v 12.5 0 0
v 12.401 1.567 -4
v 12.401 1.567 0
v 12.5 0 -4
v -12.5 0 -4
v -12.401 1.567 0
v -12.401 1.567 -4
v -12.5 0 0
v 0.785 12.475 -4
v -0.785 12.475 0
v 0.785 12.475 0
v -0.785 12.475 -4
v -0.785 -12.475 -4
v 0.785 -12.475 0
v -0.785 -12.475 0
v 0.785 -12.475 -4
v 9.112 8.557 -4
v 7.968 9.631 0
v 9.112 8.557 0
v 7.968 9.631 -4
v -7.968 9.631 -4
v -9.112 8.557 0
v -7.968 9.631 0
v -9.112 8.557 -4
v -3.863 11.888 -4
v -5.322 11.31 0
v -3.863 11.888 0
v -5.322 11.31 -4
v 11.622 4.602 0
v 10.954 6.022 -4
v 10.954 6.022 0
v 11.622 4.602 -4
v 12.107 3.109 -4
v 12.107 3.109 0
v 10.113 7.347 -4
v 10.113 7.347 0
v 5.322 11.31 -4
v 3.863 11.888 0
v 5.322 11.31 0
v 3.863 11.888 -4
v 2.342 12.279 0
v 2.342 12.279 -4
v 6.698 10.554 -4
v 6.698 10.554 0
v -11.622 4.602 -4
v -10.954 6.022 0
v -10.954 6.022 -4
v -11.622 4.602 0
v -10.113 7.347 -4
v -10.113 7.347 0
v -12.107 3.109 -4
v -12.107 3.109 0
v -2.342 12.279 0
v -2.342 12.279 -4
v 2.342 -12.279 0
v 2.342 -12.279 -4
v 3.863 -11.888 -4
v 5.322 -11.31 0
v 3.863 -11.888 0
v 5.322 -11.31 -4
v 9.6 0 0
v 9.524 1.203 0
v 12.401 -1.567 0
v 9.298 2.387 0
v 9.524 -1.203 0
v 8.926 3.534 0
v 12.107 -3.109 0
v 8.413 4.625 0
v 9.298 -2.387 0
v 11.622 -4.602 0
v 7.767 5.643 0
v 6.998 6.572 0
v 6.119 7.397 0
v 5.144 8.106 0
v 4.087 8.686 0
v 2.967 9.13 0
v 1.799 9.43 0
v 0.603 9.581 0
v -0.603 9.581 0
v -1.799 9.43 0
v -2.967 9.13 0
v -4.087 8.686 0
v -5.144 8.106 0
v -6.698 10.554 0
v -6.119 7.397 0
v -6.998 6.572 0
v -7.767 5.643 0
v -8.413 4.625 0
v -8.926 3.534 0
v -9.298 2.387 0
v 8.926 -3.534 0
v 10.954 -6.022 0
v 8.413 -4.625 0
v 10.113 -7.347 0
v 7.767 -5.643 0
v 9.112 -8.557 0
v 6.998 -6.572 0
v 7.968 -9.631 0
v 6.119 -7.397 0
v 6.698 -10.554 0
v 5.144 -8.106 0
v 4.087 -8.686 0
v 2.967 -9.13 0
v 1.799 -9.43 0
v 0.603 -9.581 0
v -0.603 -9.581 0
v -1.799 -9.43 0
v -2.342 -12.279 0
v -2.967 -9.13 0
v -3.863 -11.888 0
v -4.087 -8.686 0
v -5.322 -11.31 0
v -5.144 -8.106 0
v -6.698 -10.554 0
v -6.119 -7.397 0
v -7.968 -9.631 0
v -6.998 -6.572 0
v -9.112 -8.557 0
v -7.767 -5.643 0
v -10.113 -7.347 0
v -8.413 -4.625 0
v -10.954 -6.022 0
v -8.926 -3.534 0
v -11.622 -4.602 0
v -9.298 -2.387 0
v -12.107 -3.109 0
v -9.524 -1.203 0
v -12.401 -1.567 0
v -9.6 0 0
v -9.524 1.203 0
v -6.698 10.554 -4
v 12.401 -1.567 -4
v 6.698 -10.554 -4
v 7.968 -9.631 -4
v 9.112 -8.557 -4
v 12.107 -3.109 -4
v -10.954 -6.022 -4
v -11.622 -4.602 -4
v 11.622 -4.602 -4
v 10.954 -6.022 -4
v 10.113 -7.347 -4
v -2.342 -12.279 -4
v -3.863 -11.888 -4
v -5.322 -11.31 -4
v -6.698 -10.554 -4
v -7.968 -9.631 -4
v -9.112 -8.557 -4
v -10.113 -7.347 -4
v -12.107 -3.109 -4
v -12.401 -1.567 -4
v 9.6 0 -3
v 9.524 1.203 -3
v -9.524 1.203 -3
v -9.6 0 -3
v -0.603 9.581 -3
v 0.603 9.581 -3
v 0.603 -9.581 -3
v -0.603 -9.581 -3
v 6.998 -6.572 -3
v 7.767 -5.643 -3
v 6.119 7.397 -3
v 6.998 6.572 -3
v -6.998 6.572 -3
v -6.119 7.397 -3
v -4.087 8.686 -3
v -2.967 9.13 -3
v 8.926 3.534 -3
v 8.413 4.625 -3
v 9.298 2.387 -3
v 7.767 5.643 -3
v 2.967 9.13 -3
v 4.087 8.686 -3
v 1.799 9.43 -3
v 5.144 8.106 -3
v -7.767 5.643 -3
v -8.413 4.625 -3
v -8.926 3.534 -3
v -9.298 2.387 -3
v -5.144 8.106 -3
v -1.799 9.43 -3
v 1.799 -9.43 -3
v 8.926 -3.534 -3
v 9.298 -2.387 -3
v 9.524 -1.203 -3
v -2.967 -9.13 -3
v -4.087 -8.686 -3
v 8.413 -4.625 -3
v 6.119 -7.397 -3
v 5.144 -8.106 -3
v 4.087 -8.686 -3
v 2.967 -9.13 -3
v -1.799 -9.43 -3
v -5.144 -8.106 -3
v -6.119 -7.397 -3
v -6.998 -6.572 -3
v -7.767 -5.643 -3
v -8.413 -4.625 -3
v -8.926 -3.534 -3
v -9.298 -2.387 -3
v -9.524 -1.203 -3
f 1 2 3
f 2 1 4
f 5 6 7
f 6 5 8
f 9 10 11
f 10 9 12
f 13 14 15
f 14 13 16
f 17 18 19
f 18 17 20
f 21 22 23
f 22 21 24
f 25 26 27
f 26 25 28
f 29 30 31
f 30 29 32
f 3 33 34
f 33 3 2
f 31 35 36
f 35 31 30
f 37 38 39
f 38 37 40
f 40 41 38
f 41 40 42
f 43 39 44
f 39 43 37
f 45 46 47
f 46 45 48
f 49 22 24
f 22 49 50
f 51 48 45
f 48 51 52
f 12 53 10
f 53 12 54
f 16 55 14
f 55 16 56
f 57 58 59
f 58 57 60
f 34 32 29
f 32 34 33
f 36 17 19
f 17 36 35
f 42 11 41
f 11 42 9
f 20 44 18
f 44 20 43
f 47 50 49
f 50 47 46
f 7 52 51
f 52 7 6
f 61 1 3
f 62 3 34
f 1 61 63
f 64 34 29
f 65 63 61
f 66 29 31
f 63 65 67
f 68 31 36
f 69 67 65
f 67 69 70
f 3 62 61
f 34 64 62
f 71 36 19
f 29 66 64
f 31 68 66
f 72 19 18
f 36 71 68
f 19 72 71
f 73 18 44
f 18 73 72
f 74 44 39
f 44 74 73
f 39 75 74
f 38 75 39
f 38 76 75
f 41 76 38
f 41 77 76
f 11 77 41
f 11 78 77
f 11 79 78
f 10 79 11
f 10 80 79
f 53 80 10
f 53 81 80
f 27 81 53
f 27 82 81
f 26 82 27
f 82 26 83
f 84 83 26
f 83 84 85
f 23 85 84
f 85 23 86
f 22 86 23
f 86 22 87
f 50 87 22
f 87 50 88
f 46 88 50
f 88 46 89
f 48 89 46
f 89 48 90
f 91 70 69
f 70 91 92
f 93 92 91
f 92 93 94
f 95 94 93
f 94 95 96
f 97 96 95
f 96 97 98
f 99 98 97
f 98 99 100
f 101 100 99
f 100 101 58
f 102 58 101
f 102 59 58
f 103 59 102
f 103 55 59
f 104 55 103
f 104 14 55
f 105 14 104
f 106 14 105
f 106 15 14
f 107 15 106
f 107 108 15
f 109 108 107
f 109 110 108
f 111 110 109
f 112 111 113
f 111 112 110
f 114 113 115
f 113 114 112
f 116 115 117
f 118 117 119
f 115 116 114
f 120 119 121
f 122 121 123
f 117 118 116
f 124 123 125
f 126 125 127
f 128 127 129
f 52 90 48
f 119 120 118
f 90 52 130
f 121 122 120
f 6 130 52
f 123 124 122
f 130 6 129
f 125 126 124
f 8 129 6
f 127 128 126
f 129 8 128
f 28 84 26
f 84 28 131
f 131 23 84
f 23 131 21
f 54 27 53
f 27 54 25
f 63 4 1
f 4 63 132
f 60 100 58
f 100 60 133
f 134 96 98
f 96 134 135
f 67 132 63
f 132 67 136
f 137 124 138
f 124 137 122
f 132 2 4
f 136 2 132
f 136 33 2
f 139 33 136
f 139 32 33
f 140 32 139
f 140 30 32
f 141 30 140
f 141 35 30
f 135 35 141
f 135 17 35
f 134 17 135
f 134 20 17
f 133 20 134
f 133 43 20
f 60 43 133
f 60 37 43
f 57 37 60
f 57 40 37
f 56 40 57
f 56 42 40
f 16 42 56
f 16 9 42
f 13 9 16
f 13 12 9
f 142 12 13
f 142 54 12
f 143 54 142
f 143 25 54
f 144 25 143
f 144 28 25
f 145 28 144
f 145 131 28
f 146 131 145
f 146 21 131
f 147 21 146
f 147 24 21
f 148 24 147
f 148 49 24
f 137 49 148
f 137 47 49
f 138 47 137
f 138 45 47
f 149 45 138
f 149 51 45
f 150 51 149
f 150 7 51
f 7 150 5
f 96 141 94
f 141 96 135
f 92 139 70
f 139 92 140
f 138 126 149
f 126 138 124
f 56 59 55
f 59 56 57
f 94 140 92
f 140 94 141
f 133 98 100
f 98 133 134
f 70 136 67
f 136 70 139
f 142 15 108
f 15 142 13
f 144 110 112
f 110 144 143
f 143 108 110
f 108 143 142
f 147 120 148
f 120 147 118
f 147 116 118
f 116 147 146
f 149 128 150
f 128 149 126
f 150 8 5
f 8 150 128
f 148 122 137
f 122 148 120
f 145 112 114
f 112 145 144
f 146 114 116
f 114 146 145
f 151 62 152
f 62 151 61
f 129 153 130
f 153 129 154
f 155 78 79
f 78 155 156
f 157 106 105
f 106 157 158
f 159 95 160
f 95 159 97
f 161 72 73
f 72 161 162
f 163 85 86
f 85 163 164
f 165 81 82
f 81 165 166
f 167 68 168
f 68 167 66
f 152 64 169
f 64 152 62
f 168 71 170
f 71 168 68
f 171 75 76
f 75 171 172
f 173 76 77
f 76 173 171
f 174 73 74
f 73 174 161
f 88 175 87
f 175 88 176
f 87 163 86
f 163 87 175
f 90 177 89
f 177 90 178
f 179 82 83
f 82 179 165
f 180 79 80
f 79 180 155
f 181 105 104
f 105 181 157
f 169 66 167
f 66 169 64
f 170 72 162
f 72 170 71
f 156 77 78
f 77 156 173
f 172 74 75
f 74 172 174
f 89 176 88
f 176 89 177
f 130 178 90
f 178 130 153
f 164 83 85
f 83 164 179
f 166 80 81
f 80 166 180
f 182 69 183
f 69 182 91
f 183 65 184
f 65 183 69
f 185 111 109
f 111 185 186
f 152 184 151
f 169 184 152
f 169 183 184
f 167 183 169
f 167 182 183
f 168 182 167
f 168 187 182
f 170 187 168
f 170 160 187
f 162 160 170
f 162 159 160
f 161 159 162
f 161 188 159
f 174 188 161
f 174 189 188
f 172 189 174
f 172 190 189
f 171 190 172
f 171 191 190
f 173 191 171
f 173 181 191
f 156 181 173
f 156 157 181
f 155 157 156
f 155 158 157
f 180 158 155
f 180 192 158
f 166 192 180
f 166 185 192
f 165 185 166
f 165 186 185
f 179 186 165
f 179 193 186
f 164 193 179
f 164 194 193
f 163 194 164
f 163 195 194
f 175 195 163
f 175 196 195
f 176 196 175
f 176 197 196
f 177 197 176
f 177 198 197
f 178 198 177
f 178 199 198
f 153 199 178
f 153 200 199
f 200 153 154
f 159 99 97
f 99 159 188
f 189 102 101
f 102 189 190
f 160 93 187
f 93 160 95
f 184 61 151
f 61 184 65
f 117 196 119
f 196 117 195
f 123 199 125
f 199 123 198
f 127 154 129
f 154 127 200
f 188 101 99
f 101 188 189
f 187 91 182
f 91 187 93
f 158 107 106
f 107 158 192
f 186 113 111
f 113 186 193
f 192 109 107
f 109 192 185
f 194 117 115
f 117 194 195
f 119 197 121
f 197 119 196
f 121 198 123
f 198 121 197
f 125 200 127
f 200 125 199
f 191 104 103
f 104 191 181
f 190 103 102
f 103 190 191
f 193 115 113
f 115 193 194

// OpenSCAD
$fn = 50;


difference() {
	union() {
		translate(v = [0, 0, -4.0000000000]) {
			cylinder(h = 4, r = 12.5000000000);
		}
	}
	union() {
		#translate(v = [0, 0, -3.0000000000]) {
			cylinder(h = 3, r = 9.6000000000);
		}
	}
}
